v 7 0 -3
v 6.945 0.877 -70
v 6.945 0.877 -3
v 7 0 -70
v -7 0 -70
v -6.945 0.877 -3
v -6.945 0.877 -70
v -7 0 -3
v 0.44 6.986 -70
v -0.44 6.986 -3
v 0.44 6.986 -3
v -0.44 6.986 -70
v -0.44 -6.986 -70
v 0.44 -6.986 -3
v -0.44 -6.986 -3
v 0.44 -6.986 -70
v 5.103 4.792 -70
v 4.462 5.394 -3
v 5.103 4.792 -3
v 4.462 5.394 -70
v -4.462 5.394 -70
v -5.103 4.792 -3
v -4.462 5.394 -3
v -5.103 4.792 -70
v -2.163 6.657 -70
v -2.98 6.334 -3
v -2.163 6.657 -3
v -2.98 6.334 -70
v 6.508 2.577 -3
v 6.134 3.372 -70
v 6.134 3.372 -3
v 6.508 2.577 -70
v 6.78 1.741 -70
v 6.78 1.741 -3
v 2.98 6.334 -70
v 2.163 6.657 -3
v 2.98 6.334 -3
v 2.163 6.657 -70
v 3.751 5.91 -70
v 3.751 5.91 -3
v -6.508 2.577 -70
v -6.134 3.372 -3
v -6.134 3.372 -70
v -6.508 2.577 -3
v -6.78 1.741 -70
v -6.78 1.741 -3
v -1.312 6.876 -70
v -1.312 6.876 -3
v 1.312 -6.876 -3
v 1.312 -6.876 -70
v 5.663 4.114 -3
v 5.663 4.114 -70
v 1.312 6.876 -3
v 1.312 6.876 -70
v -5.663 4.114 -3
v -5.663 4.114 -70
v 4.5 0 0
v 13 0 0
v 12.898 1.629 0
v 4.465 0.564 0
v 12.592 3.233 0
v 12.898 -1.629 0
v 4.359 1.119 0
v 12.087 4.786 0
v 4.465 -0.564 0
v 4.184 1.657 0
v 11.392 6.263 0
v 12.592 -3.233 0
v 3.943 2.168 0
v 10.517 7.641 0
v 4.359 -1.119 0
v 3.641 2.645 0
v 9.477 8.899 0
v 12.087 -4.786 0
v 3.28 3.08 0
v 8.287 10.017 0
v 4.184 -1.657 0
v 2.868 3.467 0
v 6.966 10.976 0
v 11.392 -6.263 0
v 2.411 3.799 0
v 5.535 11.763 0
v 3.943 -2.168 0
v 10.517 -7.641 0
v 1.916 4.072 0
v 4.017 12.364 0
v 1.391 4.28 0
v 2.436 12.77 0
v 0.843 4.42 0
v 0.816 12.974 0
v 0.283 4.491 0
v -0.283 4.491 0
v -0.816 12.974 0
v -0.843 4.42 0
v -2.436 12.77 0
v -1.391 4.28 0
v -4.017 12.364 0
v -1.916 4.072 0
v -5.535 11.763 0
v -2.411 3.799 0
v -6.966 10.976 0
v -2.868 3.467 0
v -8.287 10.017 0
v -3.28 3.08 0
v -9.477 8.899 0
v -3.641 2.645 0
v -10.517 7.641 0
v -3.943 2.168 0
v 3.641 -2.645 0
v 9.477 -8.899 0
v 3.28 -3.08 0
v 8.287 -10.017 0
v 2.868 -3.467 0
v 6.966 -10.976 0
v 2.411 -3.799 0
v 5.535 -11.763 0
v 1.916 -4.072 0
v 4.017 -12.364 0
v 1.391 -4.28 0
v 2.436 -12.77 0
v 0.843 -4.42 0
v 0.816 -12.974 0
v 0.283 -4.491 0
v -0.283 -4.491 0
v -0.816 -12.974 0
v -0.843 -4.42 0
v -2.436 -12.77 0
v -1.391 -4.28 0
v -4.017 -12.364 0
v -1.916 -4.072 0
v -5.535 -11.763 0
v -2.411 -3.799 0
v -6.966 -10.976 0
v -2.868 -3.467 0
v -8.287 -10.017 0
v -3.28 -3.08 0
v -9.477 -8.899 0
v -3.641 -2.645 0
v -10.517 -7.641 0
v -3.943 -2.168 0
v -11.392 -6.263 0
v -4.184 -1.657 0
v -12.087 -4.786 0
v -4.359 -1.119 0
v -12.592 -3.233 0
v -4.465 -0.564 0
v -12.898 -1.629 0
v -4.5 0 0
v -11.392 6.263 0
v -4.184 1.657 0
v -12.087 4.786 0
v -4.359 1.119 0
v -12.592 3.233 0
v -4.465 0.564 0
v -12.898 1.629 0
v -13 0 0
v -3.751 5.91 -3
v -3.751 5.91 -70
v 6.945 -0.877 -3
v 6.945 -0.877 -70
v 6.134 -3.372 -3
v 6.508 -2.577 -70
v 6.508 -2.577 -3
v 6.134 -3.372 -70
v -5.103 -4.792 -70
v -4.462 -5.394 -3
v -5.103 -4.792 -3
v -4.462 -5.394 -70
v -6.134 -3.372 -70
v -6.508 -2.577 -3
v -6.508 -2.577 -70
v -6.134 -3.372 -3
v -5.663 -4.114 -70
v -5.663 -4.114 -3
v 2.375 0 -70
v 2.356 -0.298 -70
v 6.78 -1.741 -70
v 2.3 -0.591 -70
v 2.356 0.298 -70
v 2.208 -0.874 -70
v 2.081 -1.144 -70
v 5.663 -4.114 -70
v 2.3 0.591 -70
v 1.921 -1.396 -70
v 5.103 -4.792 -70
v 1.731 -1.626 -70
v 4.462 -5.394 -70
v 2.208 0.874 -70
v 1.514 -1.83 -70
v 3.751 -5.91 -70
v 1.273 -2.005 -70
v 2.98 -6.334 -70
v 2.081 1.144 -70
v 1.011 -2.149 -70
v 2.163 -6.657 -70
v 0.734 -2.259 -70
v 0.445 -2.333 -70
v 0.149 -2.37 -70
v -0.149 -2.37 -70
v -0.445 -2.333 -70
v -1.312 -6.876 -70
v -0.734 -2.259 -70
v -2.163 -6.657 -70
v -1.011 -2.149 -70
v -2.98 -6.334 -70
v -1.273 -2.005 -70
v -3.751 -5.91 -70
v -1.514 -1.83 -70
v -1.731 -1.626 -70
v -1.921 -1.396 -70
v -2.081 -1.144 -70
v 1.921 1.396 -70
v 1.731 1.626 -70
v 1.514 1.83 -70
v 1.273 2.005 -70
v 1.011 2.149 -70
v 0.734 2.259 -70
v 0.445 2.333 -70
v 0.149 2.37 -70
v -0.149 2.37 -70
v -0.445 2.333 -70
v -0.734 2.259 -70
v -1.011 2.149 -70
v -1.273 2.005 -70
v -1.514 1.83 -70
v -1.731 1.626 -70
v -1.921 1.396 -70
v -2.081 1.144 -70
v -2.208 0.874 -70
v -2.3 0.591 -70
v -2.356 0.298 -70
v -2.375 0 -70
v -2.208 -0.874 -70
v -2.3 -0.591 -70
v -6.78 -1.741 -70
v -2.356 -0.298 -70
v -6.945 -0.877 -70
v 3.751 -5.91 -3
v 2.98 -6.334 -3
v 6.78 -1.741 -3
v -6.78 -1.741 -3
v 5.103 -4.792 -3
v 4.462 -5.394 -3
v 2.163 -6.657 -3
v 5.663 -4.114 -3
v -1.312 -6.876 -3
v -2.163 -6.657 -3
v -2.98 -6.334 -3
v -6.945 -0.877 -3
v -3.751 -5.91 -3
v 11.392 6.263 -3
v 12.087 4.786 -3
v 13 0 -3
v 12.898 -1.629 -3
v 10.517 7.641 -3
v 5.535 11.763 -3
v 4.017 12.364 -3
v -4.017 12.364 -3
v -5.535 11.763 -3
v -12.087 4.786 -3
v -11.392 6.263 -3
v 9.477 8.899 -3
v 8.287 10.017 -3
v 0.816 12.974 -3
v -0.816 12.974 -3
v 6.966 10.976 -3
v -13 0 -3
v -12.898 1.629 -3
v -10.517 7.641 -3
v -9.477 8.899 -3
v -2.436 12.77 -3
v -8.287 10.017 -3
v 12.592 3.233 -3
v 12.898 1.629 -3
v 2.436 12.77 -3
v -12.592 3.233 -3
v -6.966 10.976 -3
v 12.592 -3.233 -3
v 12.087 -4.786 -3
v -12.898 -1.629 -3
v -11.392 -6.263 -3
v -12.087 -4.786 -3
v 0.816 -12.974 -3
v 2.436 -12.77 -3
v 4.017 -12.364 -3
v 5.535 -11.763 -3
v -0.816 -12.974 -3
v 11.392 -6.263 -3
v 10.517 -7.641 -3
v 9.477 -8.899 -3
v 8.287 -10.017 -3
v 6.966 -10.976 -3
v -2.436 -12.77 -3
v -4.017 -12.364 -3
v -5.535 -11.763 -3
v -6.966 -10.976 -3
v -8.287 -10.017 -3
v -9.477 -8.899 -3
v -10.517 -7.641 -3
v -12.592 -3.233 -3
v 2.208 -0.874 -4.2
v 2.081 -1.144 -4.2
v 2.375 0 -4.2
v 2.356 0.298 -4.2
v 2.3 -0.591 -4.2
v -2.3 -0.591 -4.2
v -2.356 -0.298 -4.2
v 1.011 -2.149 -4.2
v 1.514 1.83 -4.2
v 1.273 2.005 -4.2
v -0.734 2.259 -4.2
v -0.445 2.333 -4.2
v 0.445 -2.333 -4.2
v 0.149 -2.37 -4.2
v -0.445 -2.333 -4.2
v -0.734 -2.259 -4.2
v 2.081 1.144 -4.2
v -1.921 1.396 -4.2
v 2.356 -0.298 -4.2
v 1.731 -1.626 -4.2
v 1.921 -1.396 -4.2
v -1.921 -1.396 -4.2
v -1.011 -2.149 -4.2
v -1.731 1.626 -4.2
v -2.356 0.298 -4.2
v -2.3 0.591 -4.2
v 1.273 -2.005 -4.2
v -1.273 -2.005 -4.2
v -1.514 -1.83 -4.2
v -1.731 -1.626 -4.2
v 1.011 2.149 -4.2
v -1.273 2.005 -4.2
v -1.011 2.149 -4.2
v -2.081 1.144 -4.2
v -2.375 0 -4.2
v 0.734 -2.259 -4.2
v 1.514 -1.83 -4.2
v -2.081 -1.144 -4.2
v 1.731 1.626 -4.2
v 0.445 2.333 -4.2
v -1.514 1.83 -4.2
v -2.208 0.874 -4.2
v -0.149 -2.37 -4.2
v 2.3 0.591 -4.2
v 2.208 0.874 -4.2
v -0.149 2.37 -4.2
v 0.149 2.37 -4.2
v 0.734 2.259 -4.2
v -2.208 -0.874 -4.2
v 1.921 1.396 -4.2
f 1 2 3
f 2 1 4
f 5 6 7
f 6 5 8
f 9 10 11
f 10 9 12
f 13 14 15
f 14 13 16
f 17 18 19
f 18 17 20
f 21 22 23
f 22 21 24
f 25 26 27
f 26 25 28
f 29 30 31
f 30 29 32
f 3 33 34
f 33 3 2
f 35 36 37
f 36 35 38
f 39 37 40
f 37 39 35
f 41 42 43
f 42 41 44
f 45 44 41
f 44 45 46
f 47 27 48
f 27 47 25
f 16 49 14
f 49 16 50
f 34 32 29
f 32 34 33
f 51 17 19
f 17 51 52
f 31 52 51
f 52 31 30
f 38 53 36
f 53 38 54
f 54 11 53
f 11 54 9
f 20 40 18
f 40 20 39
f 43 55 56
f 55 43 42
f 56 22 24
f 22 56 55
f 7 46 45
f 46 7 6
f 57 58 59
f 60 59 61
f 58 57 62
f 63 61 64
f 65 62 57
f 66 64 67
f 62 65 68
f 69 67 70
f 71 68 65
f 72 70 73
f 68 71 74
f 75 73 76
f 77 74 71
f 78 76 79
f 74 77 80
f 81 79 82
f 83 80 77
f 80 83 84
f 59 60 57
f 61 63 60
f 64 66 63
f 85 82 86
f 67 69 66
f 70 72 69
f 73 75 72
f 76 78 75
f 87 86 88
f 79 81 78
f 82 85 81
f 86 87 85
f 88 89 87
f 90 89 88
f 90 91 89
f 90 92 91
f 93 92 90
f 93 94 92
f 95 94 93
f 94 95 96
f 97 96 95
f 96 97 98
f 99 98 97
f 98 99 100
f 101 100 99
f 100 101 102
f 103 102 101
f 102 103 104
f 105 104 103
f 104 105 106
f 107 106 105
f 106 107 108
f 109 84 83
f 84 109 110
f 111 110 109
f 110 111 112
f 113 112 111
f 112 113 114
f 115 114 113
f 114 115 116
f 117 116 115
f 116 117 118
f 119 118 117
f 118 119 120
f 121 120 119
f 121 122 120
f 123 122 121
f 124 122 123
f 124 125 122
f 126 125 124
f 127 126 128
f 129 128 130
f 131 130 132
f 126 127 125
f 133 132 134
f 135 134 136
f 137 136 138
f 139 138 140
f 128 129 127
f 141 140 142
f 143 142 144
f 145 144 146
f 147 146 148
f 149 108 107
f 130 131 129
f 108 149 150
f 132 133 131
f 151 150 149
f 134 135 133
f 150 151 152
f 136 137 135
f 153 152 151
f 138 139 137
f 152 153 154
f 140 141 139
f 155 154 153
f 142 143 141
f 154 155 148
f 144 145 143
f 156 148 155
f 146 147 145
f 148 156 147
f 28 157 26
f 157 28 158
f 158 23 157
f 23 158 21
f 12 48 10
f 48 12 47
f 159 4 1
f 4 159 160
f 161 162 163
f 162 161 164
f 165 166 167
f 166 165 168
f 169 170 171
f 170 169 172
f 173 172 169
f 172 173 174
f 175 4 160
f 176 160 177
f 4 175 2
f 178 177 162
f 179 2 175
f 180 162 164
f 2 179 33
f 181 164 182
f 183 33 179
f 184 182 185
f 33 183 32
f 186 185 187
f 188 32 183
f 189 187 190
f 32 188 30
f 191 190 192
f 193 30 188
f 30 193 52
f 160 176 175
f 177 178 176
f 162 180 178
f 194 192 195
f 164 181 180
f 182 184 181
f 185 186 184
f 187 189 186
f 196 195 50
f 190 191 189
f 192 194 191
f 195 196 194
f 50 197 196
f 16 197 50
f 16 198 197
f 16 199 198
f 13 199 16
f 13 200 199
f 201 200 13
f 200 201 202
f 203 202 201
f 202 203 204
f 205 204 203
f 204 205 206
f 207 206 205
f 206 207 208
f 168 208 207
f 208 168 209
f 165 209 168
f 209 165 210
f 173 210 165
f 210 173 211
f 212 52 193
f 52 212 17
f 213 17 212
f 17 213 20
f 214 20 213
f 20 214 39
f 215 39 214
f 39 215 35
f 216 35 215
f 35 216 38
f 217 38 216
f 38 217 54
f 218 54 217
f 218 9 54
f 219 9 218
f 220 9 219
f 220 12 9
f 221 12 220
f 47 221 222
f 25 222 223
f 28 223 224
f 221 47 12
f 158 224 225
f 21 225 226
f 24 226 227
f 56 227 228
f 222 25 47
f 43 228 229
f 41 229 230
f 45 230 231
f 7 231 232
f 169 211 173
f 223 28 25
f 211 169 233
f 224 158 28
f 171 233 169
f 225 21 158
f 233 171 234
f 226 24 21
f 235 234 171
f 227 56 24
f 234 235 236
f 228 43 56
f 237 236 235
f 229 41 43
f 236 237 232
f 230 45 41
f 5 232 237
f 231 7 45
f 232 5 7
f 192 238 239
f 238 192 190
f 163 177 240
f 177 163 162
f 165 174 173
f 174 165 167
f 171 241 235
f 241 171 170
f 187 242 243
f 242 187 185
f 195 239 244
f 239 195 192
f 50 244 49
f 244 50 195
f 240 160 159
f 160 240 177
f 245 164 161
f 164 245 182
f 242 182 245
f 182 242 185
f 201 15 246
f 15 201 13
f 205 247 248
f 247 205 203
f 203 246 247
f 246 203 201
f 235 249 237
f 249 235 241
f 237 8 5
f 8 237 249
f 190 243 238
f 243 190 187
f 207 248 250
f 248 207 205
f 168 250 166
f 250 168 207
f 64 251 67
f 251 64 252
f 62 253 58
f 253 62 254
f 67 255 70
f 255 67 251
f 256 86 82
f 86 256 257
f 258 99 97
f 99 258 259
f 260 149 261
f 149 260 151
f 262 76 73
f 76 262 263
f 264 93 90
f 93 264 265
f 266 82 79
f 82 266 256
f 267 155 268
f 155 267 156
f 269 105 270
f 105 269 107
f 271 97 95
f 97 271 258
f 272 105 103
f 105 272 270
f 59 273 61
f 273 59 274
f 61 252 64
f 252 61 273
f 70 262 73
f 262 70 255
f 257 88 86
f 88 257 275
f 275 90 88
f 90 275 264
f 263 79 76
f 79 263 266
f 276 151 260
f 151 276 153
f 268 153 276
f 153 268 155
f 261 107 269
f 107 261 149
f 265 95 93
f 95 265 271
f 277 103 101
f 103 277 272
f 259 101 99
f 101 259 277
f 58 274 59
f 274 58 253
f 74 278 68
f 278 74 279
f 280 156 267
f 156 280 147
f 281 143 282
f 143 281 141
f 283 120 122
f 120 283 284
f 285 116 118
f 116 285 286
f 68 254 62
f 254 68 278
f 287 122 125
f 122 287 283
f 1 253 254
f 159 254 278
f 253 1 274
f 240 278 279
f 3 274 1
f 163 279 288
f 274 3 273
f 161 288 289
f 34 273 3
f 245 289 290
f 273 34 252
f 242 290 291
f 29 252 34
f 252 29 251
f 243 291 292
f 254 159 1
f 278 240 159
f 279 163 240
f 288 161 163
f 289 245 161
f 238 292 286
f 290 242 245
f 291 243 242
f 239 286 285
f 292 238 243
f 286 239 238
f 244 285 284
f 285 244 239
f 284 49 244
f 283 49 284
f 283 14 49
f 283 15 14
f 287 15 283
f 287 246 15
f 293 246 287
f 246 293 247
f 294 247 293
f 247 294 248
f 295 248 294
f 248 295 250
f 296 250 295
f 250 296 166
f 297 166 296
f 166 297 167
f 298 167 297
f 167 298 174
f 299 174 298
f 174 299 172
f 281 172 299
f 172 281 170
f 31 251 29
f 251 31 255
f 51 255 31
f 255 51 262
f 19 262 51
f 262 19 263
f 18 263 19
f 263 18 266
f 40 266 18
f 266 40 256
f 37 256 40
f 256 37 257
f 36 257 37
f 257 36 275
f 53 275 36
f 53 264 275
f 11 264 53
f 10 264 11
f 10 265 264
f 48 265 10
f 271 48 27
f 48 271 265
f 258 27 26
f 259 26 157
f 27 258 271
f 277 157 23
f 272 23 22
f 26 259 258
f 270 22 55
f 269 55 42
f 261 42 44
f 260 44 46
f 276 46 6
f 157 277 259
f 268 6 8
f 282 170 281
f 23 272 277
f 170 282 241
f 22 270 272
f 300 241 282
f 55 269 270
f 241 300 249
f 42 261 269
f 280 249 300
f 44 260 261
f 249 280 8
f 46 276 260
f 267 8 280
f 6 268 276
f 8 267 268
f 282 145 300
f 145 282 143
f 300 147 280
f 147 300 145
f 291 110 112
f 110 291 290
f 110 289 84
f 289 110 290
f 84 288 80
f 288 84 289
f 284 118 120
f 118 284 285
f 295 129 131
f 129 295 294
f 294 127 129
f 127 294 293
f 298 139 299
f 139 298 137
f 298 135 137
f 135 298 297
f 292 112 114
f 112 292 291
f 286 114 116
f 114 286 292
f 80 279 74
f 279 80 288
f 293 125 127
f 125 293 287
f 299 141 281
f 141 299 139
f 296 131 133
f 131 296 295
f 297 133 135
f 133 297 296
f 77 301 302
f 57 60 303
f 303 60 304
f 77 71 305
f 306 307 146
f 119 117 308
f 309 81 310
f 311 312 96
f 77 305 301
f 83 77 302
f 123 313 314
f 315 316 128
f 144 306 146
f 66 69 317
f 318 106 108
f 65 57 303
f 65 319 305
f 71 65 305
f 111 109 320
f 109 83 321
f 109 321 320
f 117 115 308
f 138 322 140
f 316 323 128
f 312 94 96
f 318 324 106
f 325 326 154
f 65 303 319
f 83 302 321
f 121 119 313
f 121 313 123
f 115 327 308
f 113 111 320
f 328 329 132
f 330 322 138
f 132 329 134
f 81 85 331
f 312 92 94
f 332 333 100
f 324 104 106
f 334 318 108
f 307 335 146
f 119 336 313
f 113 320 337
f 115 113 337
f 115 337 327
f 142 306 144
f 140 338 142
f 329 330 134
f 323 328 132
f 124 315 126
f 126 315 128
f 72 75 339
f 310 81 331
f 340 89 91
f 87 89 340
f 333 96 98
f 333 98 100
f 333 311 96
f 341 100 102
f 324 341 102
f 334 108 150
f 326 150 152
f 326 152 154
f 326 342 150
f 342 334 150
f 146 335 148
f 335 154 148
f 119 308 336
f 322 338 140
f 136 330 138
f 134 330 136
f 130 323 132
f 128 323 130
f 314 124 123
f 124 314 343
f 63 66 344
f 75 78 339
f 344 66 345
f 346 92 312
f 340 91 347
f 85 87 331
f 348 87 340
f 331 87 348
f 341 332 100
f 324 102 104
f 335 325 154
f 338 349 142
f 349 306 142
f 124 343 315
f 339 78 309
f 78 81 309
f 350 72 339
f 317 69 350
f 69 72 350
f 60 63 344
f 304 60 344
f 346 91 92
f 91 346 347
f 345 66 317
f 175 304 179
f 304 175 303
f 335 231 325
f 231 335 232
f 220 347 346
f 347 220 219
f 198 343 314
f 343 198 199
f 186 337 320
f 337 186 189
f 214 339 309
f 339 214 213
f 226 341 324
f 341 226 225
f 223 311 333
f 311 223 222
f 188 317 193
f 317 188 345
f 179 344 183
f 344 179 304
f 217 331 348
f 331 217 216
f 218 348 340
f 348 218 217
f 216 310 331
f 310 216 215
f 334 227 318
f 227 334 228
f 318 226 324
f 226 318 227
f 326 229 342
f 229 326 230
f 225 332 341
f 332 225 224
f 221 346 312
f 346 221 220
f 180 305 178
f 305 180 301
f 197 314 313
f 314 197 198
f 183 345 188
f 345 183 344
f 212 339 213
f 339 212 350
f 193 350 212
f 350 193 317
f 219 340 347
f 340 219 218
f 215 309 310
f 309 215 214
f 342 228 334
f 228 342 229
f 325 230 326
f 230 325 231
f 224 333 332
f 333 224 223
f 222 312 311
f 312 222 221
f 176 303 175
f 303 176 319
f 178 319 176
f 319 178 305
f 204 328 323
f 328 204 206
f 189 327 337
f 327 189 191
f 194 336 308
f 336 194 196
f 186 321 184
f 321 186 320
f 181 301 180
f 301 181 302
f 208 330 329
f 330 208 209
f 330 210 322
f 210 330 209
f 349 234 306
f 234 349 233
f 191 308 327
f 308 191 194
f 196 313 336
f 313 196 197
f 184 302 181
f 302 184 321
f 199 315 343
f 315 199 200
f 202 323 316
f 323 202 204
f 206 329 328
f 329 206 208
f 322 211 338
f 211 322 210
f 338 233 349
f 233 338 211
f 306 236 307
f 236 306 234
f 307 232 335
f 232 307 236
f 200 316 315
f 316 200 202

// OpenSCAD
$fn = 50;


difference() {
	union() {
		translate(v = [0, 0, -70.0000000000]) {
			cylinder(h = 70, r = 7.0000000000);
		}
		translate(v = [0, 0, -3.0000000000]) {
			cylinder(h = 3, r = 13.0000000000);
		}
	}
	union() {
		translate(v = [0, 0, 0]) {
			rotate(a = [0, 0, 0]) {
				difference() {
					union() {
						#translate(v = [0, 0, -70.0000000000]) {
							cylinder(h = 70, r = 2.2500000000);
						}
						#translate(v = [0, 0, -4.2000000000]) {
							cylinder(h = 4.2000000000, r = 7.0000000000, r1 = 2.3750000000, r2 = 4.5000000000);
						}
						#translate(v = [0, 0, -70.0000000000]) {
							cylinder(h = 70, r = 2.3750000000);
						}
						#translate(v = [0, 0, -70.0000000000]) {
							cylinder(h = 70, r = 2.2500000000);
						}
					}
					union();
				}
			}
		}
	}
}
